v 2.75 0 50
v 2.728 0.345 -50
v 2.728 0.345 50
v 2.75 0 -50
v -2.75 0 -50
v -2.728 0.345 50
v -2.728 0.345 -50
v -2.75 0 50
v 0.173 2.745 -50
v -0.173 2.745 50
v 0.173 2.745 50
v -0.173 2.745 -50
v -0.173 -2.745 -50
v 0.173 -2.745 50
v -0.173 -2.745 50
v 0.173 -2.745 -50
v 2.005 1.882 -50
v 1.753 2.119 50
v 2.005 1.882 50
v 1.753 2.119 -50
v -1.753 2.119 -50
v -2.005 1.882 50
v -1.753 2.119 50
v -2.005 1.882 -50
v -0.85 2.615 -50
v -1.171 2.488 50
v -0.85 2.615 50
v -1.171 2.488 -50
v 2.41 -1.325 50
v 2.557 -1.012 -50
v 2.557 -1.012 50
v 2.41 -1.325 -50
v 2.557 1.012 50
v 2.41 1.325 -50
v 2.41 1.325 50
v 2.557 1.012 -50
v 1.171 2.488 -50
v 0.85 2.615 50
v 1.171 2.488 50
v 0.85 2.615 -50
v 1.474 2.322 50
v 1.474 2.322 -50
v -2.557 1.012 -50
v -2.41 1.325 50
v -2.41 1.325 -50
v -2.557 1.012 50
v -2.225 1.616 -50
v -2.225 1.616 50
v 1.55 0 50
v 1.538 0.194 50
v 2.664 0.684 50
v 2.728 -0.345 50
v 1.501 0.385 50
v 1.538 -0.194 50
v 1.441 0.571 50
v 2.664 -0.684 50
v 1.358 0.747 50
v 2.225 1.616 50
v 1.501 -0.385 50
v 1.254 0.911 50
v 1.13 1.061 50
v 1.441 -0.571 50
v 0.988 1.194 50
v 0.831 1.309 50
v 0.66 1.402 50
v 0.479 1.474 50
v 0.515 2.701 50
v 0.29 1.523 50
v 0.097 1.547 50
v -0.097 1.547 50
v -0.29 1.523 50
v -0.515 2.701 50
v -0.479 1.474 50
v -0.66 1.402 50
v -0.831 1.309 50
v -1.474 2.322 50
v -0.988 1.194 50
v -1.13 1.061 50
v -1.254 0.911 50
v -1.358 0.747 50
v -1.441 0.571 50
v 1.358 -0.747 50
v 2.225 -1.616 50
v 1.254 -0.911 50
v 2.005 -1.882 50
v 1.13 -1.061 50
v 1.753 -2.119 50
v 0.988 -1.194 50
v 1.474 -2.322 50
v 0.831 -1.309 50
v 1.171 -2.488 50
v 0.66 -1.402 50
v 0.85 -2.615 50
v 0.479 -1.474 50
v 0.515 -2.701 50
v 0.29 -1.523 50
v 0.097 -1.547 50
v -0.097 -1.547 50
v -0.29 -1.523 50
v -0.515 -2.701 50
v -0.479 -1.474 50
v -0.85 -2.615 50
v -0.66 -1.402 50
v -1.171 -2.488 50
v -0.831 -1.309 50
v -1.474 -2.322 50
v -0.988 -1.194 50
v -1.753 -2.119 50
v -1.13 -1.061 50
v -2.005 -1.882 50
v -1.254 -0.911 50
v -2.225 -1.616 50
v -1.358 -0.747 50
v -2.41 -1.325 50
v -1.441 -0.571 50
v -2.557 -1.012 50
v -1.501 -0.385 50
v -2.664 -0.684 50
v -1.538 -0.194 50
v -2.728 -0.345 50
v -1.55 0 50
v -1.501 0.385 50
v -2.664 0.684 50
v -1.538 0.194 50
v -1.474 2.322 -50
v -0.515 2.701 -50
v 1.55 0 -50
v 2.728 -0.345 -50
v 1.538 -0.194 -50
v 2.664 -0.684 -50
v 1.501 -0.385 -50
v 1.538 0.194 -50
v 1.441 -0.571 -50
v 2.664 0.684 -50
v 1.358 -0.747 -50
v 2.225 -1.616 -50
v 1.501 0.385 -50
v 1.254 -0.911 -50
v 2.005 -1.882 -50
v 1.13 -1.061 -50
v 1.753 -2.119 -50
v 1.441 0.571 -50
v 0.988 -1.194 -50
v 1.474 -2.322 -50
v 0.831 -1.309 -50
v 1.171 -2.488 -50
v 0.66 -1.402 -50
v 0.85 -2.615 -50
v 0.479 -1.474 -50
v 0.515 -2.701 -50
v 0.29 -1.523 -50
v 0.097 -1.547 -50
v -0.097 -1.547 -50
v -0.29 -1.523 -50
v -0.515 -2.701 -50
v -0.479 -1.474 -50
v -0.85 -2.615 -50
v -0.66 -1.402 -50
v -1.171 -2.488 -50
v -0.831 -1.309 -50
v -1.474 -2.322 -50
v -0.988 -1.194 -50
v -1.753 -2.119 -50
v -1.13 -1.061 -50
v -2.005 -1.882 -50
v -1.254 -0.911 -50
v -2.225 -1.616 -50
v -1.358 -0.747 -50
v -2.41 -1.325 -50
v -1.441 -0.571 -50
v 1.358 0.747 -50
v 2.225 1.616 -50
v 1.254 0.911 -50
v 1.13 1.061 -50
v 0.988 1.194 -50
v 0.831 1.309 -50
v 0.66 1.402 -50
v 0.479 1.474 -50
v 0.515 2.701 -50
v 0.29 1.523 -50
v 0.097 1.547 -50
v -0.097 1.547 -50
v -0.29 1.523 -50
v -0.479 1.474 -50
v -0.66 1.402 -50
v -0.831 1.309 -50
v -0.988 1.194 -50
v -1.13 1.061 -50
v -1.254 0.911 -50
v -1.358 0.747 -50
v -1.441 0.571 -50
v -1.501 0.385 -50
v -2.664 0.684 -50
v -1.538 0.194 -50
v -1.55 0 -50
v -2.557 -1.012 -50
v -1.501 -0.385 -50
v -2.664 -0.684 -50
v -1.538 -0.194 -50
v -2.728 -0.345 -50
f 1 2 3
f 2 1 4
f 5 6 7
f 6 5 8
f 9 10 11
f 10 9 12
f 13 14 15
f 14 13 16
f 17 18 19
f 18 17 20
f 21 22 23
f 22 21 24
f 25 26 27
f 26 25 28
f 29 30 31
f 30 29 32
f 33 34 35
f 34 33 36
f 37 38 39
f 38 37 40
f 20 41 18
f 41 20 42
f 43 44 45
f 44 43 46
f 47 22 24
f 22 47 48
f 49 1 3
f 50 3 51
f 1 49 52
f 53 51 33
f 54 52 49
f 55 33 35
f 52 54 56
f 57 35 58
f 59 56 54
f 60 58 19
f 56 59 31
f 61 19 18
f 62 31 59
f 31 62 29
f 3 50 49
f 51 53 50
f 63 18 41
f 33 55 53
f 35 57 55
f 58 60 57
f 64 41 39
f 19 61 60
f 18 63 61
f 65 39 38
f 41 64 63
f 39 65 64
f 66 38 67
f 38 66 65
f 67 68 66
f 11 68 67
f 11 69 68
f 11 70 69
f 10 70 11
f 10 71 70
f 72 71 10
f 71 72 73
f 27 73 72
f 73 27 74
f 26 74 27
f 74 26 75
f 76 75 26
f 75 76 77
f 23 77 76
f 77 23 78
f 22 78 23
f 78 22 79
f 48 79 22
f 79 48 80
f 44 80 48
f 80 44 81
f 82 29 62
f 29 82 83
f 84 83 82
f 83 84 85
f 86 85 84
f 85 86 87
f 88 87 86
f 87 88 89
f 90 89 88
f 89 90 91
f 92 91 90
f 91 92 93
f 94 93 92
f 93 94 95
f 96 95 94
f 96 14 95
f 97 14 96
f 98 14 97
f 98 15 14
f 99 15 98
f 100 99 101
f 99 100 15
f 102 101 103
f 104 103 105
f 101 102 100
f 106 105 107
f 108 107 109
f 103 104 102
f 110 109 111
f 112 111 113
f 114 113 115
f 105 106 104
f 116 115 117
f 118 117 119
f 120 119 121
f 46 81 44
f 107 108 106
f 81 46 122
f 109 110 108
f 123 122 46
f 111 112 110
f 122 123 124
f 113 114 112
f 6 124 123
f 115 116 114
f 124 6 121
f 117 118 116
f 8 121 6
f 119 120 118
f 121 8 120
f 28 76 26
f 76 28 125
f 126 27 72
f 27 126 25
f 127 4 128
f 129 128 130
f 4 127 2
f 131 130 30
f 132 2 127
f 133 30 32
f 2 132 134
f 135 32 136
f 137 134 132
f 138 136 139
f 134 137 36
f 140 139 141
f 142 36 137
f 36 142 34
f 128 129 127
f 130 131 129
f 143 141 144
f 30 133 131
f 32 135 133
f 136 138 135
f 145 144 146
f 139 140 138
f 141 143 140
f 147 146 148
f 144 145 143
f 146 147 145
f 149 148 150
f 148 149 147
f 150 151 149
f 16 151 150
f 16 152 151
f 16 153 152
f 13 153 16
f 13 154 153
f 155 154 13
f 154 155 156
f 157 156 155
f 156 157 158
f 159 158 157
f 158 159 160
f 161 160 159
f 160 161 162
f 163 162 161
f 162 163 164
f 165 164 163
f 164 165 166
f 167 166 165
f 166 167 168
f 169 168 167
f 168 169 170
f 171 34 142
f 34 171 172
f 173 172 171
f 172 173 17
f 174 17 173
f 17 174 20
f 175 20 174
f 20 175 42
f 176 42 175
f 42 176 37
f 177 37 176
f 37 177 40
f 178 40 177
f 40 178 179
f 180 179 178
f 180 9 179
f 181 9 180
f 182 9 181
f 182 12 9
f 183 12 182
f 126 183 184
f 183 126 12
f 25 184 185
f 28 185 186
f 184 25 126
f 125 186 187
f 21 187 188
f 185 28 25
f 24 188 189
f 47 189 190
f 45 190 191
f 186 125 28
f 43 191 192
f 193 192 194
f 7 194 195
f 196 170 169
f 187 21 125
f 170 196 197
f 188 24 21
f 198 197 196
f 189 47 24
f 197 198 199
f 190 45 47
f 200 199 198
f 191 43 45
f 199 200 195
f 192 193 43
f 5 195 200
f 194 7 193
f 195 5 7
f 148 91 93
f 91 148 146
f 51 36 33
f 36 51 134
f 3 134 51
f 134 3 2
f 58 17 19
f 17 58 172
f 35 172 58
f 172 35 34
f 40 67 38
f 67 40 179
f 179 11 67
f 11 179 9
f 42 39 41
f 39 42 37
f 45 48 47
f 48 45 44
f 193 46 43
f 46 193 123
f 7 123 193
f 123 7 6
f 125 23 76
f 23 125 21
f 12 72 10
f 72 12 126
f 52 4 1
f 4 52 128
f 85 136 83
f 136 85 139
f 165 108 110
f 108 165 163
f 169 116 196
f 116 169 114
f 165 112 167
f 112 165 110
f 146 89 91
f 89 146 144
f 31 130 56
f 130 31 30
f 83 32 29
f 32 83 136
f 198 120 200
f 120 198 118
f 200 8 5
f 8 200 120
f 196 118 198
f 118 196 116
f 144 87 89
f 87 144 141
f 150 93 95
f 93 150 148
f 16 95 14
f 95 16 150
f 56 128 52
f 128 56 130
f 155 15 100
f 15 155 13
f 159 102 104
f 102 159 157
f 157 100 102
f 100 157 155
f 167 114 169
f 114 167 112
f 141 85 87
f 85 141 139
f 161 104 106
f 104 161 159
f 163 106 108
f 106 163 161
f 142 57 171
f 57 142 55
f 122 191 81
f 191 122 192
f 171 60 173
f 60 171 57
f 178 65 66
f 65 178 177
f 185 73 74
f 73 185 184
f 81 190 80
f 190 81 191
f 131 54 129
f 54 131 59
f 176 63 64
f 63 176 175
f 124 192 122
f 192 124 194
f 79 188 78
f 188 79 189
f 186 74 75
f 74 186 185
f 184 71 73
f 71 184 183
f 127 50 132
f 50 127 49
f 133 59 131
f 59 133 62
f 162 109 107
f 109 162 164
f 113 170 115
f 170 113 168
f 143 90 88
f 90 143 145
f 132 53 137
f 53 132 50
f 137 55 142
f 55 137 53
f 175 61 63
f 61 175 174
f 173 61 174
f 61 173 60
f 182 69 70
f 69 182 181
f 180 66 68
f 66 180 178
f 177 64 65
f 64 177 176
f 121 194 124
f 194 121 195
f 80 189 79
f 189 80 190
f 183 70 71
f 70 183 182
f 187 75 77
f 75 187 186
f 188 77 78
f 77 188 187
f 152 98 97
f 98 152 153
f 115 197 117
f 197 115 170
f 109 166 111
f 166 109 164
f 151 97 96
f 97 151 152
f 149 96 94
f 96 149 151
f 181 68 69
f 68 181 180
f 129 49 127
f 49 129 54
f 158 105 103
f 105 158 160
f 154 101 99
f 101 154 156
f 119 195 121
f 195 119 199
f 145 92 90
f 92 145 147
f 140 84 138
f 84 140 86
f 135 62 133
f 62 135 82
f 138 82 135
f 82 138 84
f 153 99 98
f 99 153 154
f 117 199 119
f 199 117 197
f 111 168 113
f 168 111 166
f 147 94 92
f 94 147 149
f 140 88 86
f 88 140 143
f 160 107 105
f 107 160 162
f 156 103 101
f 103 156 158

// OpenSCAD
$fn = 50;


difference() {
	union() {
		translate(v = [0, 0, -50.0000000000]) {
			cylinder(h = 100, r = 2.7500000000);
		}
	}
	union() {
		translate(v = [0, 0, -100.0000000000]) {
			cylinder(h = 200, r = 1.5500000000);
		}
	}
}
